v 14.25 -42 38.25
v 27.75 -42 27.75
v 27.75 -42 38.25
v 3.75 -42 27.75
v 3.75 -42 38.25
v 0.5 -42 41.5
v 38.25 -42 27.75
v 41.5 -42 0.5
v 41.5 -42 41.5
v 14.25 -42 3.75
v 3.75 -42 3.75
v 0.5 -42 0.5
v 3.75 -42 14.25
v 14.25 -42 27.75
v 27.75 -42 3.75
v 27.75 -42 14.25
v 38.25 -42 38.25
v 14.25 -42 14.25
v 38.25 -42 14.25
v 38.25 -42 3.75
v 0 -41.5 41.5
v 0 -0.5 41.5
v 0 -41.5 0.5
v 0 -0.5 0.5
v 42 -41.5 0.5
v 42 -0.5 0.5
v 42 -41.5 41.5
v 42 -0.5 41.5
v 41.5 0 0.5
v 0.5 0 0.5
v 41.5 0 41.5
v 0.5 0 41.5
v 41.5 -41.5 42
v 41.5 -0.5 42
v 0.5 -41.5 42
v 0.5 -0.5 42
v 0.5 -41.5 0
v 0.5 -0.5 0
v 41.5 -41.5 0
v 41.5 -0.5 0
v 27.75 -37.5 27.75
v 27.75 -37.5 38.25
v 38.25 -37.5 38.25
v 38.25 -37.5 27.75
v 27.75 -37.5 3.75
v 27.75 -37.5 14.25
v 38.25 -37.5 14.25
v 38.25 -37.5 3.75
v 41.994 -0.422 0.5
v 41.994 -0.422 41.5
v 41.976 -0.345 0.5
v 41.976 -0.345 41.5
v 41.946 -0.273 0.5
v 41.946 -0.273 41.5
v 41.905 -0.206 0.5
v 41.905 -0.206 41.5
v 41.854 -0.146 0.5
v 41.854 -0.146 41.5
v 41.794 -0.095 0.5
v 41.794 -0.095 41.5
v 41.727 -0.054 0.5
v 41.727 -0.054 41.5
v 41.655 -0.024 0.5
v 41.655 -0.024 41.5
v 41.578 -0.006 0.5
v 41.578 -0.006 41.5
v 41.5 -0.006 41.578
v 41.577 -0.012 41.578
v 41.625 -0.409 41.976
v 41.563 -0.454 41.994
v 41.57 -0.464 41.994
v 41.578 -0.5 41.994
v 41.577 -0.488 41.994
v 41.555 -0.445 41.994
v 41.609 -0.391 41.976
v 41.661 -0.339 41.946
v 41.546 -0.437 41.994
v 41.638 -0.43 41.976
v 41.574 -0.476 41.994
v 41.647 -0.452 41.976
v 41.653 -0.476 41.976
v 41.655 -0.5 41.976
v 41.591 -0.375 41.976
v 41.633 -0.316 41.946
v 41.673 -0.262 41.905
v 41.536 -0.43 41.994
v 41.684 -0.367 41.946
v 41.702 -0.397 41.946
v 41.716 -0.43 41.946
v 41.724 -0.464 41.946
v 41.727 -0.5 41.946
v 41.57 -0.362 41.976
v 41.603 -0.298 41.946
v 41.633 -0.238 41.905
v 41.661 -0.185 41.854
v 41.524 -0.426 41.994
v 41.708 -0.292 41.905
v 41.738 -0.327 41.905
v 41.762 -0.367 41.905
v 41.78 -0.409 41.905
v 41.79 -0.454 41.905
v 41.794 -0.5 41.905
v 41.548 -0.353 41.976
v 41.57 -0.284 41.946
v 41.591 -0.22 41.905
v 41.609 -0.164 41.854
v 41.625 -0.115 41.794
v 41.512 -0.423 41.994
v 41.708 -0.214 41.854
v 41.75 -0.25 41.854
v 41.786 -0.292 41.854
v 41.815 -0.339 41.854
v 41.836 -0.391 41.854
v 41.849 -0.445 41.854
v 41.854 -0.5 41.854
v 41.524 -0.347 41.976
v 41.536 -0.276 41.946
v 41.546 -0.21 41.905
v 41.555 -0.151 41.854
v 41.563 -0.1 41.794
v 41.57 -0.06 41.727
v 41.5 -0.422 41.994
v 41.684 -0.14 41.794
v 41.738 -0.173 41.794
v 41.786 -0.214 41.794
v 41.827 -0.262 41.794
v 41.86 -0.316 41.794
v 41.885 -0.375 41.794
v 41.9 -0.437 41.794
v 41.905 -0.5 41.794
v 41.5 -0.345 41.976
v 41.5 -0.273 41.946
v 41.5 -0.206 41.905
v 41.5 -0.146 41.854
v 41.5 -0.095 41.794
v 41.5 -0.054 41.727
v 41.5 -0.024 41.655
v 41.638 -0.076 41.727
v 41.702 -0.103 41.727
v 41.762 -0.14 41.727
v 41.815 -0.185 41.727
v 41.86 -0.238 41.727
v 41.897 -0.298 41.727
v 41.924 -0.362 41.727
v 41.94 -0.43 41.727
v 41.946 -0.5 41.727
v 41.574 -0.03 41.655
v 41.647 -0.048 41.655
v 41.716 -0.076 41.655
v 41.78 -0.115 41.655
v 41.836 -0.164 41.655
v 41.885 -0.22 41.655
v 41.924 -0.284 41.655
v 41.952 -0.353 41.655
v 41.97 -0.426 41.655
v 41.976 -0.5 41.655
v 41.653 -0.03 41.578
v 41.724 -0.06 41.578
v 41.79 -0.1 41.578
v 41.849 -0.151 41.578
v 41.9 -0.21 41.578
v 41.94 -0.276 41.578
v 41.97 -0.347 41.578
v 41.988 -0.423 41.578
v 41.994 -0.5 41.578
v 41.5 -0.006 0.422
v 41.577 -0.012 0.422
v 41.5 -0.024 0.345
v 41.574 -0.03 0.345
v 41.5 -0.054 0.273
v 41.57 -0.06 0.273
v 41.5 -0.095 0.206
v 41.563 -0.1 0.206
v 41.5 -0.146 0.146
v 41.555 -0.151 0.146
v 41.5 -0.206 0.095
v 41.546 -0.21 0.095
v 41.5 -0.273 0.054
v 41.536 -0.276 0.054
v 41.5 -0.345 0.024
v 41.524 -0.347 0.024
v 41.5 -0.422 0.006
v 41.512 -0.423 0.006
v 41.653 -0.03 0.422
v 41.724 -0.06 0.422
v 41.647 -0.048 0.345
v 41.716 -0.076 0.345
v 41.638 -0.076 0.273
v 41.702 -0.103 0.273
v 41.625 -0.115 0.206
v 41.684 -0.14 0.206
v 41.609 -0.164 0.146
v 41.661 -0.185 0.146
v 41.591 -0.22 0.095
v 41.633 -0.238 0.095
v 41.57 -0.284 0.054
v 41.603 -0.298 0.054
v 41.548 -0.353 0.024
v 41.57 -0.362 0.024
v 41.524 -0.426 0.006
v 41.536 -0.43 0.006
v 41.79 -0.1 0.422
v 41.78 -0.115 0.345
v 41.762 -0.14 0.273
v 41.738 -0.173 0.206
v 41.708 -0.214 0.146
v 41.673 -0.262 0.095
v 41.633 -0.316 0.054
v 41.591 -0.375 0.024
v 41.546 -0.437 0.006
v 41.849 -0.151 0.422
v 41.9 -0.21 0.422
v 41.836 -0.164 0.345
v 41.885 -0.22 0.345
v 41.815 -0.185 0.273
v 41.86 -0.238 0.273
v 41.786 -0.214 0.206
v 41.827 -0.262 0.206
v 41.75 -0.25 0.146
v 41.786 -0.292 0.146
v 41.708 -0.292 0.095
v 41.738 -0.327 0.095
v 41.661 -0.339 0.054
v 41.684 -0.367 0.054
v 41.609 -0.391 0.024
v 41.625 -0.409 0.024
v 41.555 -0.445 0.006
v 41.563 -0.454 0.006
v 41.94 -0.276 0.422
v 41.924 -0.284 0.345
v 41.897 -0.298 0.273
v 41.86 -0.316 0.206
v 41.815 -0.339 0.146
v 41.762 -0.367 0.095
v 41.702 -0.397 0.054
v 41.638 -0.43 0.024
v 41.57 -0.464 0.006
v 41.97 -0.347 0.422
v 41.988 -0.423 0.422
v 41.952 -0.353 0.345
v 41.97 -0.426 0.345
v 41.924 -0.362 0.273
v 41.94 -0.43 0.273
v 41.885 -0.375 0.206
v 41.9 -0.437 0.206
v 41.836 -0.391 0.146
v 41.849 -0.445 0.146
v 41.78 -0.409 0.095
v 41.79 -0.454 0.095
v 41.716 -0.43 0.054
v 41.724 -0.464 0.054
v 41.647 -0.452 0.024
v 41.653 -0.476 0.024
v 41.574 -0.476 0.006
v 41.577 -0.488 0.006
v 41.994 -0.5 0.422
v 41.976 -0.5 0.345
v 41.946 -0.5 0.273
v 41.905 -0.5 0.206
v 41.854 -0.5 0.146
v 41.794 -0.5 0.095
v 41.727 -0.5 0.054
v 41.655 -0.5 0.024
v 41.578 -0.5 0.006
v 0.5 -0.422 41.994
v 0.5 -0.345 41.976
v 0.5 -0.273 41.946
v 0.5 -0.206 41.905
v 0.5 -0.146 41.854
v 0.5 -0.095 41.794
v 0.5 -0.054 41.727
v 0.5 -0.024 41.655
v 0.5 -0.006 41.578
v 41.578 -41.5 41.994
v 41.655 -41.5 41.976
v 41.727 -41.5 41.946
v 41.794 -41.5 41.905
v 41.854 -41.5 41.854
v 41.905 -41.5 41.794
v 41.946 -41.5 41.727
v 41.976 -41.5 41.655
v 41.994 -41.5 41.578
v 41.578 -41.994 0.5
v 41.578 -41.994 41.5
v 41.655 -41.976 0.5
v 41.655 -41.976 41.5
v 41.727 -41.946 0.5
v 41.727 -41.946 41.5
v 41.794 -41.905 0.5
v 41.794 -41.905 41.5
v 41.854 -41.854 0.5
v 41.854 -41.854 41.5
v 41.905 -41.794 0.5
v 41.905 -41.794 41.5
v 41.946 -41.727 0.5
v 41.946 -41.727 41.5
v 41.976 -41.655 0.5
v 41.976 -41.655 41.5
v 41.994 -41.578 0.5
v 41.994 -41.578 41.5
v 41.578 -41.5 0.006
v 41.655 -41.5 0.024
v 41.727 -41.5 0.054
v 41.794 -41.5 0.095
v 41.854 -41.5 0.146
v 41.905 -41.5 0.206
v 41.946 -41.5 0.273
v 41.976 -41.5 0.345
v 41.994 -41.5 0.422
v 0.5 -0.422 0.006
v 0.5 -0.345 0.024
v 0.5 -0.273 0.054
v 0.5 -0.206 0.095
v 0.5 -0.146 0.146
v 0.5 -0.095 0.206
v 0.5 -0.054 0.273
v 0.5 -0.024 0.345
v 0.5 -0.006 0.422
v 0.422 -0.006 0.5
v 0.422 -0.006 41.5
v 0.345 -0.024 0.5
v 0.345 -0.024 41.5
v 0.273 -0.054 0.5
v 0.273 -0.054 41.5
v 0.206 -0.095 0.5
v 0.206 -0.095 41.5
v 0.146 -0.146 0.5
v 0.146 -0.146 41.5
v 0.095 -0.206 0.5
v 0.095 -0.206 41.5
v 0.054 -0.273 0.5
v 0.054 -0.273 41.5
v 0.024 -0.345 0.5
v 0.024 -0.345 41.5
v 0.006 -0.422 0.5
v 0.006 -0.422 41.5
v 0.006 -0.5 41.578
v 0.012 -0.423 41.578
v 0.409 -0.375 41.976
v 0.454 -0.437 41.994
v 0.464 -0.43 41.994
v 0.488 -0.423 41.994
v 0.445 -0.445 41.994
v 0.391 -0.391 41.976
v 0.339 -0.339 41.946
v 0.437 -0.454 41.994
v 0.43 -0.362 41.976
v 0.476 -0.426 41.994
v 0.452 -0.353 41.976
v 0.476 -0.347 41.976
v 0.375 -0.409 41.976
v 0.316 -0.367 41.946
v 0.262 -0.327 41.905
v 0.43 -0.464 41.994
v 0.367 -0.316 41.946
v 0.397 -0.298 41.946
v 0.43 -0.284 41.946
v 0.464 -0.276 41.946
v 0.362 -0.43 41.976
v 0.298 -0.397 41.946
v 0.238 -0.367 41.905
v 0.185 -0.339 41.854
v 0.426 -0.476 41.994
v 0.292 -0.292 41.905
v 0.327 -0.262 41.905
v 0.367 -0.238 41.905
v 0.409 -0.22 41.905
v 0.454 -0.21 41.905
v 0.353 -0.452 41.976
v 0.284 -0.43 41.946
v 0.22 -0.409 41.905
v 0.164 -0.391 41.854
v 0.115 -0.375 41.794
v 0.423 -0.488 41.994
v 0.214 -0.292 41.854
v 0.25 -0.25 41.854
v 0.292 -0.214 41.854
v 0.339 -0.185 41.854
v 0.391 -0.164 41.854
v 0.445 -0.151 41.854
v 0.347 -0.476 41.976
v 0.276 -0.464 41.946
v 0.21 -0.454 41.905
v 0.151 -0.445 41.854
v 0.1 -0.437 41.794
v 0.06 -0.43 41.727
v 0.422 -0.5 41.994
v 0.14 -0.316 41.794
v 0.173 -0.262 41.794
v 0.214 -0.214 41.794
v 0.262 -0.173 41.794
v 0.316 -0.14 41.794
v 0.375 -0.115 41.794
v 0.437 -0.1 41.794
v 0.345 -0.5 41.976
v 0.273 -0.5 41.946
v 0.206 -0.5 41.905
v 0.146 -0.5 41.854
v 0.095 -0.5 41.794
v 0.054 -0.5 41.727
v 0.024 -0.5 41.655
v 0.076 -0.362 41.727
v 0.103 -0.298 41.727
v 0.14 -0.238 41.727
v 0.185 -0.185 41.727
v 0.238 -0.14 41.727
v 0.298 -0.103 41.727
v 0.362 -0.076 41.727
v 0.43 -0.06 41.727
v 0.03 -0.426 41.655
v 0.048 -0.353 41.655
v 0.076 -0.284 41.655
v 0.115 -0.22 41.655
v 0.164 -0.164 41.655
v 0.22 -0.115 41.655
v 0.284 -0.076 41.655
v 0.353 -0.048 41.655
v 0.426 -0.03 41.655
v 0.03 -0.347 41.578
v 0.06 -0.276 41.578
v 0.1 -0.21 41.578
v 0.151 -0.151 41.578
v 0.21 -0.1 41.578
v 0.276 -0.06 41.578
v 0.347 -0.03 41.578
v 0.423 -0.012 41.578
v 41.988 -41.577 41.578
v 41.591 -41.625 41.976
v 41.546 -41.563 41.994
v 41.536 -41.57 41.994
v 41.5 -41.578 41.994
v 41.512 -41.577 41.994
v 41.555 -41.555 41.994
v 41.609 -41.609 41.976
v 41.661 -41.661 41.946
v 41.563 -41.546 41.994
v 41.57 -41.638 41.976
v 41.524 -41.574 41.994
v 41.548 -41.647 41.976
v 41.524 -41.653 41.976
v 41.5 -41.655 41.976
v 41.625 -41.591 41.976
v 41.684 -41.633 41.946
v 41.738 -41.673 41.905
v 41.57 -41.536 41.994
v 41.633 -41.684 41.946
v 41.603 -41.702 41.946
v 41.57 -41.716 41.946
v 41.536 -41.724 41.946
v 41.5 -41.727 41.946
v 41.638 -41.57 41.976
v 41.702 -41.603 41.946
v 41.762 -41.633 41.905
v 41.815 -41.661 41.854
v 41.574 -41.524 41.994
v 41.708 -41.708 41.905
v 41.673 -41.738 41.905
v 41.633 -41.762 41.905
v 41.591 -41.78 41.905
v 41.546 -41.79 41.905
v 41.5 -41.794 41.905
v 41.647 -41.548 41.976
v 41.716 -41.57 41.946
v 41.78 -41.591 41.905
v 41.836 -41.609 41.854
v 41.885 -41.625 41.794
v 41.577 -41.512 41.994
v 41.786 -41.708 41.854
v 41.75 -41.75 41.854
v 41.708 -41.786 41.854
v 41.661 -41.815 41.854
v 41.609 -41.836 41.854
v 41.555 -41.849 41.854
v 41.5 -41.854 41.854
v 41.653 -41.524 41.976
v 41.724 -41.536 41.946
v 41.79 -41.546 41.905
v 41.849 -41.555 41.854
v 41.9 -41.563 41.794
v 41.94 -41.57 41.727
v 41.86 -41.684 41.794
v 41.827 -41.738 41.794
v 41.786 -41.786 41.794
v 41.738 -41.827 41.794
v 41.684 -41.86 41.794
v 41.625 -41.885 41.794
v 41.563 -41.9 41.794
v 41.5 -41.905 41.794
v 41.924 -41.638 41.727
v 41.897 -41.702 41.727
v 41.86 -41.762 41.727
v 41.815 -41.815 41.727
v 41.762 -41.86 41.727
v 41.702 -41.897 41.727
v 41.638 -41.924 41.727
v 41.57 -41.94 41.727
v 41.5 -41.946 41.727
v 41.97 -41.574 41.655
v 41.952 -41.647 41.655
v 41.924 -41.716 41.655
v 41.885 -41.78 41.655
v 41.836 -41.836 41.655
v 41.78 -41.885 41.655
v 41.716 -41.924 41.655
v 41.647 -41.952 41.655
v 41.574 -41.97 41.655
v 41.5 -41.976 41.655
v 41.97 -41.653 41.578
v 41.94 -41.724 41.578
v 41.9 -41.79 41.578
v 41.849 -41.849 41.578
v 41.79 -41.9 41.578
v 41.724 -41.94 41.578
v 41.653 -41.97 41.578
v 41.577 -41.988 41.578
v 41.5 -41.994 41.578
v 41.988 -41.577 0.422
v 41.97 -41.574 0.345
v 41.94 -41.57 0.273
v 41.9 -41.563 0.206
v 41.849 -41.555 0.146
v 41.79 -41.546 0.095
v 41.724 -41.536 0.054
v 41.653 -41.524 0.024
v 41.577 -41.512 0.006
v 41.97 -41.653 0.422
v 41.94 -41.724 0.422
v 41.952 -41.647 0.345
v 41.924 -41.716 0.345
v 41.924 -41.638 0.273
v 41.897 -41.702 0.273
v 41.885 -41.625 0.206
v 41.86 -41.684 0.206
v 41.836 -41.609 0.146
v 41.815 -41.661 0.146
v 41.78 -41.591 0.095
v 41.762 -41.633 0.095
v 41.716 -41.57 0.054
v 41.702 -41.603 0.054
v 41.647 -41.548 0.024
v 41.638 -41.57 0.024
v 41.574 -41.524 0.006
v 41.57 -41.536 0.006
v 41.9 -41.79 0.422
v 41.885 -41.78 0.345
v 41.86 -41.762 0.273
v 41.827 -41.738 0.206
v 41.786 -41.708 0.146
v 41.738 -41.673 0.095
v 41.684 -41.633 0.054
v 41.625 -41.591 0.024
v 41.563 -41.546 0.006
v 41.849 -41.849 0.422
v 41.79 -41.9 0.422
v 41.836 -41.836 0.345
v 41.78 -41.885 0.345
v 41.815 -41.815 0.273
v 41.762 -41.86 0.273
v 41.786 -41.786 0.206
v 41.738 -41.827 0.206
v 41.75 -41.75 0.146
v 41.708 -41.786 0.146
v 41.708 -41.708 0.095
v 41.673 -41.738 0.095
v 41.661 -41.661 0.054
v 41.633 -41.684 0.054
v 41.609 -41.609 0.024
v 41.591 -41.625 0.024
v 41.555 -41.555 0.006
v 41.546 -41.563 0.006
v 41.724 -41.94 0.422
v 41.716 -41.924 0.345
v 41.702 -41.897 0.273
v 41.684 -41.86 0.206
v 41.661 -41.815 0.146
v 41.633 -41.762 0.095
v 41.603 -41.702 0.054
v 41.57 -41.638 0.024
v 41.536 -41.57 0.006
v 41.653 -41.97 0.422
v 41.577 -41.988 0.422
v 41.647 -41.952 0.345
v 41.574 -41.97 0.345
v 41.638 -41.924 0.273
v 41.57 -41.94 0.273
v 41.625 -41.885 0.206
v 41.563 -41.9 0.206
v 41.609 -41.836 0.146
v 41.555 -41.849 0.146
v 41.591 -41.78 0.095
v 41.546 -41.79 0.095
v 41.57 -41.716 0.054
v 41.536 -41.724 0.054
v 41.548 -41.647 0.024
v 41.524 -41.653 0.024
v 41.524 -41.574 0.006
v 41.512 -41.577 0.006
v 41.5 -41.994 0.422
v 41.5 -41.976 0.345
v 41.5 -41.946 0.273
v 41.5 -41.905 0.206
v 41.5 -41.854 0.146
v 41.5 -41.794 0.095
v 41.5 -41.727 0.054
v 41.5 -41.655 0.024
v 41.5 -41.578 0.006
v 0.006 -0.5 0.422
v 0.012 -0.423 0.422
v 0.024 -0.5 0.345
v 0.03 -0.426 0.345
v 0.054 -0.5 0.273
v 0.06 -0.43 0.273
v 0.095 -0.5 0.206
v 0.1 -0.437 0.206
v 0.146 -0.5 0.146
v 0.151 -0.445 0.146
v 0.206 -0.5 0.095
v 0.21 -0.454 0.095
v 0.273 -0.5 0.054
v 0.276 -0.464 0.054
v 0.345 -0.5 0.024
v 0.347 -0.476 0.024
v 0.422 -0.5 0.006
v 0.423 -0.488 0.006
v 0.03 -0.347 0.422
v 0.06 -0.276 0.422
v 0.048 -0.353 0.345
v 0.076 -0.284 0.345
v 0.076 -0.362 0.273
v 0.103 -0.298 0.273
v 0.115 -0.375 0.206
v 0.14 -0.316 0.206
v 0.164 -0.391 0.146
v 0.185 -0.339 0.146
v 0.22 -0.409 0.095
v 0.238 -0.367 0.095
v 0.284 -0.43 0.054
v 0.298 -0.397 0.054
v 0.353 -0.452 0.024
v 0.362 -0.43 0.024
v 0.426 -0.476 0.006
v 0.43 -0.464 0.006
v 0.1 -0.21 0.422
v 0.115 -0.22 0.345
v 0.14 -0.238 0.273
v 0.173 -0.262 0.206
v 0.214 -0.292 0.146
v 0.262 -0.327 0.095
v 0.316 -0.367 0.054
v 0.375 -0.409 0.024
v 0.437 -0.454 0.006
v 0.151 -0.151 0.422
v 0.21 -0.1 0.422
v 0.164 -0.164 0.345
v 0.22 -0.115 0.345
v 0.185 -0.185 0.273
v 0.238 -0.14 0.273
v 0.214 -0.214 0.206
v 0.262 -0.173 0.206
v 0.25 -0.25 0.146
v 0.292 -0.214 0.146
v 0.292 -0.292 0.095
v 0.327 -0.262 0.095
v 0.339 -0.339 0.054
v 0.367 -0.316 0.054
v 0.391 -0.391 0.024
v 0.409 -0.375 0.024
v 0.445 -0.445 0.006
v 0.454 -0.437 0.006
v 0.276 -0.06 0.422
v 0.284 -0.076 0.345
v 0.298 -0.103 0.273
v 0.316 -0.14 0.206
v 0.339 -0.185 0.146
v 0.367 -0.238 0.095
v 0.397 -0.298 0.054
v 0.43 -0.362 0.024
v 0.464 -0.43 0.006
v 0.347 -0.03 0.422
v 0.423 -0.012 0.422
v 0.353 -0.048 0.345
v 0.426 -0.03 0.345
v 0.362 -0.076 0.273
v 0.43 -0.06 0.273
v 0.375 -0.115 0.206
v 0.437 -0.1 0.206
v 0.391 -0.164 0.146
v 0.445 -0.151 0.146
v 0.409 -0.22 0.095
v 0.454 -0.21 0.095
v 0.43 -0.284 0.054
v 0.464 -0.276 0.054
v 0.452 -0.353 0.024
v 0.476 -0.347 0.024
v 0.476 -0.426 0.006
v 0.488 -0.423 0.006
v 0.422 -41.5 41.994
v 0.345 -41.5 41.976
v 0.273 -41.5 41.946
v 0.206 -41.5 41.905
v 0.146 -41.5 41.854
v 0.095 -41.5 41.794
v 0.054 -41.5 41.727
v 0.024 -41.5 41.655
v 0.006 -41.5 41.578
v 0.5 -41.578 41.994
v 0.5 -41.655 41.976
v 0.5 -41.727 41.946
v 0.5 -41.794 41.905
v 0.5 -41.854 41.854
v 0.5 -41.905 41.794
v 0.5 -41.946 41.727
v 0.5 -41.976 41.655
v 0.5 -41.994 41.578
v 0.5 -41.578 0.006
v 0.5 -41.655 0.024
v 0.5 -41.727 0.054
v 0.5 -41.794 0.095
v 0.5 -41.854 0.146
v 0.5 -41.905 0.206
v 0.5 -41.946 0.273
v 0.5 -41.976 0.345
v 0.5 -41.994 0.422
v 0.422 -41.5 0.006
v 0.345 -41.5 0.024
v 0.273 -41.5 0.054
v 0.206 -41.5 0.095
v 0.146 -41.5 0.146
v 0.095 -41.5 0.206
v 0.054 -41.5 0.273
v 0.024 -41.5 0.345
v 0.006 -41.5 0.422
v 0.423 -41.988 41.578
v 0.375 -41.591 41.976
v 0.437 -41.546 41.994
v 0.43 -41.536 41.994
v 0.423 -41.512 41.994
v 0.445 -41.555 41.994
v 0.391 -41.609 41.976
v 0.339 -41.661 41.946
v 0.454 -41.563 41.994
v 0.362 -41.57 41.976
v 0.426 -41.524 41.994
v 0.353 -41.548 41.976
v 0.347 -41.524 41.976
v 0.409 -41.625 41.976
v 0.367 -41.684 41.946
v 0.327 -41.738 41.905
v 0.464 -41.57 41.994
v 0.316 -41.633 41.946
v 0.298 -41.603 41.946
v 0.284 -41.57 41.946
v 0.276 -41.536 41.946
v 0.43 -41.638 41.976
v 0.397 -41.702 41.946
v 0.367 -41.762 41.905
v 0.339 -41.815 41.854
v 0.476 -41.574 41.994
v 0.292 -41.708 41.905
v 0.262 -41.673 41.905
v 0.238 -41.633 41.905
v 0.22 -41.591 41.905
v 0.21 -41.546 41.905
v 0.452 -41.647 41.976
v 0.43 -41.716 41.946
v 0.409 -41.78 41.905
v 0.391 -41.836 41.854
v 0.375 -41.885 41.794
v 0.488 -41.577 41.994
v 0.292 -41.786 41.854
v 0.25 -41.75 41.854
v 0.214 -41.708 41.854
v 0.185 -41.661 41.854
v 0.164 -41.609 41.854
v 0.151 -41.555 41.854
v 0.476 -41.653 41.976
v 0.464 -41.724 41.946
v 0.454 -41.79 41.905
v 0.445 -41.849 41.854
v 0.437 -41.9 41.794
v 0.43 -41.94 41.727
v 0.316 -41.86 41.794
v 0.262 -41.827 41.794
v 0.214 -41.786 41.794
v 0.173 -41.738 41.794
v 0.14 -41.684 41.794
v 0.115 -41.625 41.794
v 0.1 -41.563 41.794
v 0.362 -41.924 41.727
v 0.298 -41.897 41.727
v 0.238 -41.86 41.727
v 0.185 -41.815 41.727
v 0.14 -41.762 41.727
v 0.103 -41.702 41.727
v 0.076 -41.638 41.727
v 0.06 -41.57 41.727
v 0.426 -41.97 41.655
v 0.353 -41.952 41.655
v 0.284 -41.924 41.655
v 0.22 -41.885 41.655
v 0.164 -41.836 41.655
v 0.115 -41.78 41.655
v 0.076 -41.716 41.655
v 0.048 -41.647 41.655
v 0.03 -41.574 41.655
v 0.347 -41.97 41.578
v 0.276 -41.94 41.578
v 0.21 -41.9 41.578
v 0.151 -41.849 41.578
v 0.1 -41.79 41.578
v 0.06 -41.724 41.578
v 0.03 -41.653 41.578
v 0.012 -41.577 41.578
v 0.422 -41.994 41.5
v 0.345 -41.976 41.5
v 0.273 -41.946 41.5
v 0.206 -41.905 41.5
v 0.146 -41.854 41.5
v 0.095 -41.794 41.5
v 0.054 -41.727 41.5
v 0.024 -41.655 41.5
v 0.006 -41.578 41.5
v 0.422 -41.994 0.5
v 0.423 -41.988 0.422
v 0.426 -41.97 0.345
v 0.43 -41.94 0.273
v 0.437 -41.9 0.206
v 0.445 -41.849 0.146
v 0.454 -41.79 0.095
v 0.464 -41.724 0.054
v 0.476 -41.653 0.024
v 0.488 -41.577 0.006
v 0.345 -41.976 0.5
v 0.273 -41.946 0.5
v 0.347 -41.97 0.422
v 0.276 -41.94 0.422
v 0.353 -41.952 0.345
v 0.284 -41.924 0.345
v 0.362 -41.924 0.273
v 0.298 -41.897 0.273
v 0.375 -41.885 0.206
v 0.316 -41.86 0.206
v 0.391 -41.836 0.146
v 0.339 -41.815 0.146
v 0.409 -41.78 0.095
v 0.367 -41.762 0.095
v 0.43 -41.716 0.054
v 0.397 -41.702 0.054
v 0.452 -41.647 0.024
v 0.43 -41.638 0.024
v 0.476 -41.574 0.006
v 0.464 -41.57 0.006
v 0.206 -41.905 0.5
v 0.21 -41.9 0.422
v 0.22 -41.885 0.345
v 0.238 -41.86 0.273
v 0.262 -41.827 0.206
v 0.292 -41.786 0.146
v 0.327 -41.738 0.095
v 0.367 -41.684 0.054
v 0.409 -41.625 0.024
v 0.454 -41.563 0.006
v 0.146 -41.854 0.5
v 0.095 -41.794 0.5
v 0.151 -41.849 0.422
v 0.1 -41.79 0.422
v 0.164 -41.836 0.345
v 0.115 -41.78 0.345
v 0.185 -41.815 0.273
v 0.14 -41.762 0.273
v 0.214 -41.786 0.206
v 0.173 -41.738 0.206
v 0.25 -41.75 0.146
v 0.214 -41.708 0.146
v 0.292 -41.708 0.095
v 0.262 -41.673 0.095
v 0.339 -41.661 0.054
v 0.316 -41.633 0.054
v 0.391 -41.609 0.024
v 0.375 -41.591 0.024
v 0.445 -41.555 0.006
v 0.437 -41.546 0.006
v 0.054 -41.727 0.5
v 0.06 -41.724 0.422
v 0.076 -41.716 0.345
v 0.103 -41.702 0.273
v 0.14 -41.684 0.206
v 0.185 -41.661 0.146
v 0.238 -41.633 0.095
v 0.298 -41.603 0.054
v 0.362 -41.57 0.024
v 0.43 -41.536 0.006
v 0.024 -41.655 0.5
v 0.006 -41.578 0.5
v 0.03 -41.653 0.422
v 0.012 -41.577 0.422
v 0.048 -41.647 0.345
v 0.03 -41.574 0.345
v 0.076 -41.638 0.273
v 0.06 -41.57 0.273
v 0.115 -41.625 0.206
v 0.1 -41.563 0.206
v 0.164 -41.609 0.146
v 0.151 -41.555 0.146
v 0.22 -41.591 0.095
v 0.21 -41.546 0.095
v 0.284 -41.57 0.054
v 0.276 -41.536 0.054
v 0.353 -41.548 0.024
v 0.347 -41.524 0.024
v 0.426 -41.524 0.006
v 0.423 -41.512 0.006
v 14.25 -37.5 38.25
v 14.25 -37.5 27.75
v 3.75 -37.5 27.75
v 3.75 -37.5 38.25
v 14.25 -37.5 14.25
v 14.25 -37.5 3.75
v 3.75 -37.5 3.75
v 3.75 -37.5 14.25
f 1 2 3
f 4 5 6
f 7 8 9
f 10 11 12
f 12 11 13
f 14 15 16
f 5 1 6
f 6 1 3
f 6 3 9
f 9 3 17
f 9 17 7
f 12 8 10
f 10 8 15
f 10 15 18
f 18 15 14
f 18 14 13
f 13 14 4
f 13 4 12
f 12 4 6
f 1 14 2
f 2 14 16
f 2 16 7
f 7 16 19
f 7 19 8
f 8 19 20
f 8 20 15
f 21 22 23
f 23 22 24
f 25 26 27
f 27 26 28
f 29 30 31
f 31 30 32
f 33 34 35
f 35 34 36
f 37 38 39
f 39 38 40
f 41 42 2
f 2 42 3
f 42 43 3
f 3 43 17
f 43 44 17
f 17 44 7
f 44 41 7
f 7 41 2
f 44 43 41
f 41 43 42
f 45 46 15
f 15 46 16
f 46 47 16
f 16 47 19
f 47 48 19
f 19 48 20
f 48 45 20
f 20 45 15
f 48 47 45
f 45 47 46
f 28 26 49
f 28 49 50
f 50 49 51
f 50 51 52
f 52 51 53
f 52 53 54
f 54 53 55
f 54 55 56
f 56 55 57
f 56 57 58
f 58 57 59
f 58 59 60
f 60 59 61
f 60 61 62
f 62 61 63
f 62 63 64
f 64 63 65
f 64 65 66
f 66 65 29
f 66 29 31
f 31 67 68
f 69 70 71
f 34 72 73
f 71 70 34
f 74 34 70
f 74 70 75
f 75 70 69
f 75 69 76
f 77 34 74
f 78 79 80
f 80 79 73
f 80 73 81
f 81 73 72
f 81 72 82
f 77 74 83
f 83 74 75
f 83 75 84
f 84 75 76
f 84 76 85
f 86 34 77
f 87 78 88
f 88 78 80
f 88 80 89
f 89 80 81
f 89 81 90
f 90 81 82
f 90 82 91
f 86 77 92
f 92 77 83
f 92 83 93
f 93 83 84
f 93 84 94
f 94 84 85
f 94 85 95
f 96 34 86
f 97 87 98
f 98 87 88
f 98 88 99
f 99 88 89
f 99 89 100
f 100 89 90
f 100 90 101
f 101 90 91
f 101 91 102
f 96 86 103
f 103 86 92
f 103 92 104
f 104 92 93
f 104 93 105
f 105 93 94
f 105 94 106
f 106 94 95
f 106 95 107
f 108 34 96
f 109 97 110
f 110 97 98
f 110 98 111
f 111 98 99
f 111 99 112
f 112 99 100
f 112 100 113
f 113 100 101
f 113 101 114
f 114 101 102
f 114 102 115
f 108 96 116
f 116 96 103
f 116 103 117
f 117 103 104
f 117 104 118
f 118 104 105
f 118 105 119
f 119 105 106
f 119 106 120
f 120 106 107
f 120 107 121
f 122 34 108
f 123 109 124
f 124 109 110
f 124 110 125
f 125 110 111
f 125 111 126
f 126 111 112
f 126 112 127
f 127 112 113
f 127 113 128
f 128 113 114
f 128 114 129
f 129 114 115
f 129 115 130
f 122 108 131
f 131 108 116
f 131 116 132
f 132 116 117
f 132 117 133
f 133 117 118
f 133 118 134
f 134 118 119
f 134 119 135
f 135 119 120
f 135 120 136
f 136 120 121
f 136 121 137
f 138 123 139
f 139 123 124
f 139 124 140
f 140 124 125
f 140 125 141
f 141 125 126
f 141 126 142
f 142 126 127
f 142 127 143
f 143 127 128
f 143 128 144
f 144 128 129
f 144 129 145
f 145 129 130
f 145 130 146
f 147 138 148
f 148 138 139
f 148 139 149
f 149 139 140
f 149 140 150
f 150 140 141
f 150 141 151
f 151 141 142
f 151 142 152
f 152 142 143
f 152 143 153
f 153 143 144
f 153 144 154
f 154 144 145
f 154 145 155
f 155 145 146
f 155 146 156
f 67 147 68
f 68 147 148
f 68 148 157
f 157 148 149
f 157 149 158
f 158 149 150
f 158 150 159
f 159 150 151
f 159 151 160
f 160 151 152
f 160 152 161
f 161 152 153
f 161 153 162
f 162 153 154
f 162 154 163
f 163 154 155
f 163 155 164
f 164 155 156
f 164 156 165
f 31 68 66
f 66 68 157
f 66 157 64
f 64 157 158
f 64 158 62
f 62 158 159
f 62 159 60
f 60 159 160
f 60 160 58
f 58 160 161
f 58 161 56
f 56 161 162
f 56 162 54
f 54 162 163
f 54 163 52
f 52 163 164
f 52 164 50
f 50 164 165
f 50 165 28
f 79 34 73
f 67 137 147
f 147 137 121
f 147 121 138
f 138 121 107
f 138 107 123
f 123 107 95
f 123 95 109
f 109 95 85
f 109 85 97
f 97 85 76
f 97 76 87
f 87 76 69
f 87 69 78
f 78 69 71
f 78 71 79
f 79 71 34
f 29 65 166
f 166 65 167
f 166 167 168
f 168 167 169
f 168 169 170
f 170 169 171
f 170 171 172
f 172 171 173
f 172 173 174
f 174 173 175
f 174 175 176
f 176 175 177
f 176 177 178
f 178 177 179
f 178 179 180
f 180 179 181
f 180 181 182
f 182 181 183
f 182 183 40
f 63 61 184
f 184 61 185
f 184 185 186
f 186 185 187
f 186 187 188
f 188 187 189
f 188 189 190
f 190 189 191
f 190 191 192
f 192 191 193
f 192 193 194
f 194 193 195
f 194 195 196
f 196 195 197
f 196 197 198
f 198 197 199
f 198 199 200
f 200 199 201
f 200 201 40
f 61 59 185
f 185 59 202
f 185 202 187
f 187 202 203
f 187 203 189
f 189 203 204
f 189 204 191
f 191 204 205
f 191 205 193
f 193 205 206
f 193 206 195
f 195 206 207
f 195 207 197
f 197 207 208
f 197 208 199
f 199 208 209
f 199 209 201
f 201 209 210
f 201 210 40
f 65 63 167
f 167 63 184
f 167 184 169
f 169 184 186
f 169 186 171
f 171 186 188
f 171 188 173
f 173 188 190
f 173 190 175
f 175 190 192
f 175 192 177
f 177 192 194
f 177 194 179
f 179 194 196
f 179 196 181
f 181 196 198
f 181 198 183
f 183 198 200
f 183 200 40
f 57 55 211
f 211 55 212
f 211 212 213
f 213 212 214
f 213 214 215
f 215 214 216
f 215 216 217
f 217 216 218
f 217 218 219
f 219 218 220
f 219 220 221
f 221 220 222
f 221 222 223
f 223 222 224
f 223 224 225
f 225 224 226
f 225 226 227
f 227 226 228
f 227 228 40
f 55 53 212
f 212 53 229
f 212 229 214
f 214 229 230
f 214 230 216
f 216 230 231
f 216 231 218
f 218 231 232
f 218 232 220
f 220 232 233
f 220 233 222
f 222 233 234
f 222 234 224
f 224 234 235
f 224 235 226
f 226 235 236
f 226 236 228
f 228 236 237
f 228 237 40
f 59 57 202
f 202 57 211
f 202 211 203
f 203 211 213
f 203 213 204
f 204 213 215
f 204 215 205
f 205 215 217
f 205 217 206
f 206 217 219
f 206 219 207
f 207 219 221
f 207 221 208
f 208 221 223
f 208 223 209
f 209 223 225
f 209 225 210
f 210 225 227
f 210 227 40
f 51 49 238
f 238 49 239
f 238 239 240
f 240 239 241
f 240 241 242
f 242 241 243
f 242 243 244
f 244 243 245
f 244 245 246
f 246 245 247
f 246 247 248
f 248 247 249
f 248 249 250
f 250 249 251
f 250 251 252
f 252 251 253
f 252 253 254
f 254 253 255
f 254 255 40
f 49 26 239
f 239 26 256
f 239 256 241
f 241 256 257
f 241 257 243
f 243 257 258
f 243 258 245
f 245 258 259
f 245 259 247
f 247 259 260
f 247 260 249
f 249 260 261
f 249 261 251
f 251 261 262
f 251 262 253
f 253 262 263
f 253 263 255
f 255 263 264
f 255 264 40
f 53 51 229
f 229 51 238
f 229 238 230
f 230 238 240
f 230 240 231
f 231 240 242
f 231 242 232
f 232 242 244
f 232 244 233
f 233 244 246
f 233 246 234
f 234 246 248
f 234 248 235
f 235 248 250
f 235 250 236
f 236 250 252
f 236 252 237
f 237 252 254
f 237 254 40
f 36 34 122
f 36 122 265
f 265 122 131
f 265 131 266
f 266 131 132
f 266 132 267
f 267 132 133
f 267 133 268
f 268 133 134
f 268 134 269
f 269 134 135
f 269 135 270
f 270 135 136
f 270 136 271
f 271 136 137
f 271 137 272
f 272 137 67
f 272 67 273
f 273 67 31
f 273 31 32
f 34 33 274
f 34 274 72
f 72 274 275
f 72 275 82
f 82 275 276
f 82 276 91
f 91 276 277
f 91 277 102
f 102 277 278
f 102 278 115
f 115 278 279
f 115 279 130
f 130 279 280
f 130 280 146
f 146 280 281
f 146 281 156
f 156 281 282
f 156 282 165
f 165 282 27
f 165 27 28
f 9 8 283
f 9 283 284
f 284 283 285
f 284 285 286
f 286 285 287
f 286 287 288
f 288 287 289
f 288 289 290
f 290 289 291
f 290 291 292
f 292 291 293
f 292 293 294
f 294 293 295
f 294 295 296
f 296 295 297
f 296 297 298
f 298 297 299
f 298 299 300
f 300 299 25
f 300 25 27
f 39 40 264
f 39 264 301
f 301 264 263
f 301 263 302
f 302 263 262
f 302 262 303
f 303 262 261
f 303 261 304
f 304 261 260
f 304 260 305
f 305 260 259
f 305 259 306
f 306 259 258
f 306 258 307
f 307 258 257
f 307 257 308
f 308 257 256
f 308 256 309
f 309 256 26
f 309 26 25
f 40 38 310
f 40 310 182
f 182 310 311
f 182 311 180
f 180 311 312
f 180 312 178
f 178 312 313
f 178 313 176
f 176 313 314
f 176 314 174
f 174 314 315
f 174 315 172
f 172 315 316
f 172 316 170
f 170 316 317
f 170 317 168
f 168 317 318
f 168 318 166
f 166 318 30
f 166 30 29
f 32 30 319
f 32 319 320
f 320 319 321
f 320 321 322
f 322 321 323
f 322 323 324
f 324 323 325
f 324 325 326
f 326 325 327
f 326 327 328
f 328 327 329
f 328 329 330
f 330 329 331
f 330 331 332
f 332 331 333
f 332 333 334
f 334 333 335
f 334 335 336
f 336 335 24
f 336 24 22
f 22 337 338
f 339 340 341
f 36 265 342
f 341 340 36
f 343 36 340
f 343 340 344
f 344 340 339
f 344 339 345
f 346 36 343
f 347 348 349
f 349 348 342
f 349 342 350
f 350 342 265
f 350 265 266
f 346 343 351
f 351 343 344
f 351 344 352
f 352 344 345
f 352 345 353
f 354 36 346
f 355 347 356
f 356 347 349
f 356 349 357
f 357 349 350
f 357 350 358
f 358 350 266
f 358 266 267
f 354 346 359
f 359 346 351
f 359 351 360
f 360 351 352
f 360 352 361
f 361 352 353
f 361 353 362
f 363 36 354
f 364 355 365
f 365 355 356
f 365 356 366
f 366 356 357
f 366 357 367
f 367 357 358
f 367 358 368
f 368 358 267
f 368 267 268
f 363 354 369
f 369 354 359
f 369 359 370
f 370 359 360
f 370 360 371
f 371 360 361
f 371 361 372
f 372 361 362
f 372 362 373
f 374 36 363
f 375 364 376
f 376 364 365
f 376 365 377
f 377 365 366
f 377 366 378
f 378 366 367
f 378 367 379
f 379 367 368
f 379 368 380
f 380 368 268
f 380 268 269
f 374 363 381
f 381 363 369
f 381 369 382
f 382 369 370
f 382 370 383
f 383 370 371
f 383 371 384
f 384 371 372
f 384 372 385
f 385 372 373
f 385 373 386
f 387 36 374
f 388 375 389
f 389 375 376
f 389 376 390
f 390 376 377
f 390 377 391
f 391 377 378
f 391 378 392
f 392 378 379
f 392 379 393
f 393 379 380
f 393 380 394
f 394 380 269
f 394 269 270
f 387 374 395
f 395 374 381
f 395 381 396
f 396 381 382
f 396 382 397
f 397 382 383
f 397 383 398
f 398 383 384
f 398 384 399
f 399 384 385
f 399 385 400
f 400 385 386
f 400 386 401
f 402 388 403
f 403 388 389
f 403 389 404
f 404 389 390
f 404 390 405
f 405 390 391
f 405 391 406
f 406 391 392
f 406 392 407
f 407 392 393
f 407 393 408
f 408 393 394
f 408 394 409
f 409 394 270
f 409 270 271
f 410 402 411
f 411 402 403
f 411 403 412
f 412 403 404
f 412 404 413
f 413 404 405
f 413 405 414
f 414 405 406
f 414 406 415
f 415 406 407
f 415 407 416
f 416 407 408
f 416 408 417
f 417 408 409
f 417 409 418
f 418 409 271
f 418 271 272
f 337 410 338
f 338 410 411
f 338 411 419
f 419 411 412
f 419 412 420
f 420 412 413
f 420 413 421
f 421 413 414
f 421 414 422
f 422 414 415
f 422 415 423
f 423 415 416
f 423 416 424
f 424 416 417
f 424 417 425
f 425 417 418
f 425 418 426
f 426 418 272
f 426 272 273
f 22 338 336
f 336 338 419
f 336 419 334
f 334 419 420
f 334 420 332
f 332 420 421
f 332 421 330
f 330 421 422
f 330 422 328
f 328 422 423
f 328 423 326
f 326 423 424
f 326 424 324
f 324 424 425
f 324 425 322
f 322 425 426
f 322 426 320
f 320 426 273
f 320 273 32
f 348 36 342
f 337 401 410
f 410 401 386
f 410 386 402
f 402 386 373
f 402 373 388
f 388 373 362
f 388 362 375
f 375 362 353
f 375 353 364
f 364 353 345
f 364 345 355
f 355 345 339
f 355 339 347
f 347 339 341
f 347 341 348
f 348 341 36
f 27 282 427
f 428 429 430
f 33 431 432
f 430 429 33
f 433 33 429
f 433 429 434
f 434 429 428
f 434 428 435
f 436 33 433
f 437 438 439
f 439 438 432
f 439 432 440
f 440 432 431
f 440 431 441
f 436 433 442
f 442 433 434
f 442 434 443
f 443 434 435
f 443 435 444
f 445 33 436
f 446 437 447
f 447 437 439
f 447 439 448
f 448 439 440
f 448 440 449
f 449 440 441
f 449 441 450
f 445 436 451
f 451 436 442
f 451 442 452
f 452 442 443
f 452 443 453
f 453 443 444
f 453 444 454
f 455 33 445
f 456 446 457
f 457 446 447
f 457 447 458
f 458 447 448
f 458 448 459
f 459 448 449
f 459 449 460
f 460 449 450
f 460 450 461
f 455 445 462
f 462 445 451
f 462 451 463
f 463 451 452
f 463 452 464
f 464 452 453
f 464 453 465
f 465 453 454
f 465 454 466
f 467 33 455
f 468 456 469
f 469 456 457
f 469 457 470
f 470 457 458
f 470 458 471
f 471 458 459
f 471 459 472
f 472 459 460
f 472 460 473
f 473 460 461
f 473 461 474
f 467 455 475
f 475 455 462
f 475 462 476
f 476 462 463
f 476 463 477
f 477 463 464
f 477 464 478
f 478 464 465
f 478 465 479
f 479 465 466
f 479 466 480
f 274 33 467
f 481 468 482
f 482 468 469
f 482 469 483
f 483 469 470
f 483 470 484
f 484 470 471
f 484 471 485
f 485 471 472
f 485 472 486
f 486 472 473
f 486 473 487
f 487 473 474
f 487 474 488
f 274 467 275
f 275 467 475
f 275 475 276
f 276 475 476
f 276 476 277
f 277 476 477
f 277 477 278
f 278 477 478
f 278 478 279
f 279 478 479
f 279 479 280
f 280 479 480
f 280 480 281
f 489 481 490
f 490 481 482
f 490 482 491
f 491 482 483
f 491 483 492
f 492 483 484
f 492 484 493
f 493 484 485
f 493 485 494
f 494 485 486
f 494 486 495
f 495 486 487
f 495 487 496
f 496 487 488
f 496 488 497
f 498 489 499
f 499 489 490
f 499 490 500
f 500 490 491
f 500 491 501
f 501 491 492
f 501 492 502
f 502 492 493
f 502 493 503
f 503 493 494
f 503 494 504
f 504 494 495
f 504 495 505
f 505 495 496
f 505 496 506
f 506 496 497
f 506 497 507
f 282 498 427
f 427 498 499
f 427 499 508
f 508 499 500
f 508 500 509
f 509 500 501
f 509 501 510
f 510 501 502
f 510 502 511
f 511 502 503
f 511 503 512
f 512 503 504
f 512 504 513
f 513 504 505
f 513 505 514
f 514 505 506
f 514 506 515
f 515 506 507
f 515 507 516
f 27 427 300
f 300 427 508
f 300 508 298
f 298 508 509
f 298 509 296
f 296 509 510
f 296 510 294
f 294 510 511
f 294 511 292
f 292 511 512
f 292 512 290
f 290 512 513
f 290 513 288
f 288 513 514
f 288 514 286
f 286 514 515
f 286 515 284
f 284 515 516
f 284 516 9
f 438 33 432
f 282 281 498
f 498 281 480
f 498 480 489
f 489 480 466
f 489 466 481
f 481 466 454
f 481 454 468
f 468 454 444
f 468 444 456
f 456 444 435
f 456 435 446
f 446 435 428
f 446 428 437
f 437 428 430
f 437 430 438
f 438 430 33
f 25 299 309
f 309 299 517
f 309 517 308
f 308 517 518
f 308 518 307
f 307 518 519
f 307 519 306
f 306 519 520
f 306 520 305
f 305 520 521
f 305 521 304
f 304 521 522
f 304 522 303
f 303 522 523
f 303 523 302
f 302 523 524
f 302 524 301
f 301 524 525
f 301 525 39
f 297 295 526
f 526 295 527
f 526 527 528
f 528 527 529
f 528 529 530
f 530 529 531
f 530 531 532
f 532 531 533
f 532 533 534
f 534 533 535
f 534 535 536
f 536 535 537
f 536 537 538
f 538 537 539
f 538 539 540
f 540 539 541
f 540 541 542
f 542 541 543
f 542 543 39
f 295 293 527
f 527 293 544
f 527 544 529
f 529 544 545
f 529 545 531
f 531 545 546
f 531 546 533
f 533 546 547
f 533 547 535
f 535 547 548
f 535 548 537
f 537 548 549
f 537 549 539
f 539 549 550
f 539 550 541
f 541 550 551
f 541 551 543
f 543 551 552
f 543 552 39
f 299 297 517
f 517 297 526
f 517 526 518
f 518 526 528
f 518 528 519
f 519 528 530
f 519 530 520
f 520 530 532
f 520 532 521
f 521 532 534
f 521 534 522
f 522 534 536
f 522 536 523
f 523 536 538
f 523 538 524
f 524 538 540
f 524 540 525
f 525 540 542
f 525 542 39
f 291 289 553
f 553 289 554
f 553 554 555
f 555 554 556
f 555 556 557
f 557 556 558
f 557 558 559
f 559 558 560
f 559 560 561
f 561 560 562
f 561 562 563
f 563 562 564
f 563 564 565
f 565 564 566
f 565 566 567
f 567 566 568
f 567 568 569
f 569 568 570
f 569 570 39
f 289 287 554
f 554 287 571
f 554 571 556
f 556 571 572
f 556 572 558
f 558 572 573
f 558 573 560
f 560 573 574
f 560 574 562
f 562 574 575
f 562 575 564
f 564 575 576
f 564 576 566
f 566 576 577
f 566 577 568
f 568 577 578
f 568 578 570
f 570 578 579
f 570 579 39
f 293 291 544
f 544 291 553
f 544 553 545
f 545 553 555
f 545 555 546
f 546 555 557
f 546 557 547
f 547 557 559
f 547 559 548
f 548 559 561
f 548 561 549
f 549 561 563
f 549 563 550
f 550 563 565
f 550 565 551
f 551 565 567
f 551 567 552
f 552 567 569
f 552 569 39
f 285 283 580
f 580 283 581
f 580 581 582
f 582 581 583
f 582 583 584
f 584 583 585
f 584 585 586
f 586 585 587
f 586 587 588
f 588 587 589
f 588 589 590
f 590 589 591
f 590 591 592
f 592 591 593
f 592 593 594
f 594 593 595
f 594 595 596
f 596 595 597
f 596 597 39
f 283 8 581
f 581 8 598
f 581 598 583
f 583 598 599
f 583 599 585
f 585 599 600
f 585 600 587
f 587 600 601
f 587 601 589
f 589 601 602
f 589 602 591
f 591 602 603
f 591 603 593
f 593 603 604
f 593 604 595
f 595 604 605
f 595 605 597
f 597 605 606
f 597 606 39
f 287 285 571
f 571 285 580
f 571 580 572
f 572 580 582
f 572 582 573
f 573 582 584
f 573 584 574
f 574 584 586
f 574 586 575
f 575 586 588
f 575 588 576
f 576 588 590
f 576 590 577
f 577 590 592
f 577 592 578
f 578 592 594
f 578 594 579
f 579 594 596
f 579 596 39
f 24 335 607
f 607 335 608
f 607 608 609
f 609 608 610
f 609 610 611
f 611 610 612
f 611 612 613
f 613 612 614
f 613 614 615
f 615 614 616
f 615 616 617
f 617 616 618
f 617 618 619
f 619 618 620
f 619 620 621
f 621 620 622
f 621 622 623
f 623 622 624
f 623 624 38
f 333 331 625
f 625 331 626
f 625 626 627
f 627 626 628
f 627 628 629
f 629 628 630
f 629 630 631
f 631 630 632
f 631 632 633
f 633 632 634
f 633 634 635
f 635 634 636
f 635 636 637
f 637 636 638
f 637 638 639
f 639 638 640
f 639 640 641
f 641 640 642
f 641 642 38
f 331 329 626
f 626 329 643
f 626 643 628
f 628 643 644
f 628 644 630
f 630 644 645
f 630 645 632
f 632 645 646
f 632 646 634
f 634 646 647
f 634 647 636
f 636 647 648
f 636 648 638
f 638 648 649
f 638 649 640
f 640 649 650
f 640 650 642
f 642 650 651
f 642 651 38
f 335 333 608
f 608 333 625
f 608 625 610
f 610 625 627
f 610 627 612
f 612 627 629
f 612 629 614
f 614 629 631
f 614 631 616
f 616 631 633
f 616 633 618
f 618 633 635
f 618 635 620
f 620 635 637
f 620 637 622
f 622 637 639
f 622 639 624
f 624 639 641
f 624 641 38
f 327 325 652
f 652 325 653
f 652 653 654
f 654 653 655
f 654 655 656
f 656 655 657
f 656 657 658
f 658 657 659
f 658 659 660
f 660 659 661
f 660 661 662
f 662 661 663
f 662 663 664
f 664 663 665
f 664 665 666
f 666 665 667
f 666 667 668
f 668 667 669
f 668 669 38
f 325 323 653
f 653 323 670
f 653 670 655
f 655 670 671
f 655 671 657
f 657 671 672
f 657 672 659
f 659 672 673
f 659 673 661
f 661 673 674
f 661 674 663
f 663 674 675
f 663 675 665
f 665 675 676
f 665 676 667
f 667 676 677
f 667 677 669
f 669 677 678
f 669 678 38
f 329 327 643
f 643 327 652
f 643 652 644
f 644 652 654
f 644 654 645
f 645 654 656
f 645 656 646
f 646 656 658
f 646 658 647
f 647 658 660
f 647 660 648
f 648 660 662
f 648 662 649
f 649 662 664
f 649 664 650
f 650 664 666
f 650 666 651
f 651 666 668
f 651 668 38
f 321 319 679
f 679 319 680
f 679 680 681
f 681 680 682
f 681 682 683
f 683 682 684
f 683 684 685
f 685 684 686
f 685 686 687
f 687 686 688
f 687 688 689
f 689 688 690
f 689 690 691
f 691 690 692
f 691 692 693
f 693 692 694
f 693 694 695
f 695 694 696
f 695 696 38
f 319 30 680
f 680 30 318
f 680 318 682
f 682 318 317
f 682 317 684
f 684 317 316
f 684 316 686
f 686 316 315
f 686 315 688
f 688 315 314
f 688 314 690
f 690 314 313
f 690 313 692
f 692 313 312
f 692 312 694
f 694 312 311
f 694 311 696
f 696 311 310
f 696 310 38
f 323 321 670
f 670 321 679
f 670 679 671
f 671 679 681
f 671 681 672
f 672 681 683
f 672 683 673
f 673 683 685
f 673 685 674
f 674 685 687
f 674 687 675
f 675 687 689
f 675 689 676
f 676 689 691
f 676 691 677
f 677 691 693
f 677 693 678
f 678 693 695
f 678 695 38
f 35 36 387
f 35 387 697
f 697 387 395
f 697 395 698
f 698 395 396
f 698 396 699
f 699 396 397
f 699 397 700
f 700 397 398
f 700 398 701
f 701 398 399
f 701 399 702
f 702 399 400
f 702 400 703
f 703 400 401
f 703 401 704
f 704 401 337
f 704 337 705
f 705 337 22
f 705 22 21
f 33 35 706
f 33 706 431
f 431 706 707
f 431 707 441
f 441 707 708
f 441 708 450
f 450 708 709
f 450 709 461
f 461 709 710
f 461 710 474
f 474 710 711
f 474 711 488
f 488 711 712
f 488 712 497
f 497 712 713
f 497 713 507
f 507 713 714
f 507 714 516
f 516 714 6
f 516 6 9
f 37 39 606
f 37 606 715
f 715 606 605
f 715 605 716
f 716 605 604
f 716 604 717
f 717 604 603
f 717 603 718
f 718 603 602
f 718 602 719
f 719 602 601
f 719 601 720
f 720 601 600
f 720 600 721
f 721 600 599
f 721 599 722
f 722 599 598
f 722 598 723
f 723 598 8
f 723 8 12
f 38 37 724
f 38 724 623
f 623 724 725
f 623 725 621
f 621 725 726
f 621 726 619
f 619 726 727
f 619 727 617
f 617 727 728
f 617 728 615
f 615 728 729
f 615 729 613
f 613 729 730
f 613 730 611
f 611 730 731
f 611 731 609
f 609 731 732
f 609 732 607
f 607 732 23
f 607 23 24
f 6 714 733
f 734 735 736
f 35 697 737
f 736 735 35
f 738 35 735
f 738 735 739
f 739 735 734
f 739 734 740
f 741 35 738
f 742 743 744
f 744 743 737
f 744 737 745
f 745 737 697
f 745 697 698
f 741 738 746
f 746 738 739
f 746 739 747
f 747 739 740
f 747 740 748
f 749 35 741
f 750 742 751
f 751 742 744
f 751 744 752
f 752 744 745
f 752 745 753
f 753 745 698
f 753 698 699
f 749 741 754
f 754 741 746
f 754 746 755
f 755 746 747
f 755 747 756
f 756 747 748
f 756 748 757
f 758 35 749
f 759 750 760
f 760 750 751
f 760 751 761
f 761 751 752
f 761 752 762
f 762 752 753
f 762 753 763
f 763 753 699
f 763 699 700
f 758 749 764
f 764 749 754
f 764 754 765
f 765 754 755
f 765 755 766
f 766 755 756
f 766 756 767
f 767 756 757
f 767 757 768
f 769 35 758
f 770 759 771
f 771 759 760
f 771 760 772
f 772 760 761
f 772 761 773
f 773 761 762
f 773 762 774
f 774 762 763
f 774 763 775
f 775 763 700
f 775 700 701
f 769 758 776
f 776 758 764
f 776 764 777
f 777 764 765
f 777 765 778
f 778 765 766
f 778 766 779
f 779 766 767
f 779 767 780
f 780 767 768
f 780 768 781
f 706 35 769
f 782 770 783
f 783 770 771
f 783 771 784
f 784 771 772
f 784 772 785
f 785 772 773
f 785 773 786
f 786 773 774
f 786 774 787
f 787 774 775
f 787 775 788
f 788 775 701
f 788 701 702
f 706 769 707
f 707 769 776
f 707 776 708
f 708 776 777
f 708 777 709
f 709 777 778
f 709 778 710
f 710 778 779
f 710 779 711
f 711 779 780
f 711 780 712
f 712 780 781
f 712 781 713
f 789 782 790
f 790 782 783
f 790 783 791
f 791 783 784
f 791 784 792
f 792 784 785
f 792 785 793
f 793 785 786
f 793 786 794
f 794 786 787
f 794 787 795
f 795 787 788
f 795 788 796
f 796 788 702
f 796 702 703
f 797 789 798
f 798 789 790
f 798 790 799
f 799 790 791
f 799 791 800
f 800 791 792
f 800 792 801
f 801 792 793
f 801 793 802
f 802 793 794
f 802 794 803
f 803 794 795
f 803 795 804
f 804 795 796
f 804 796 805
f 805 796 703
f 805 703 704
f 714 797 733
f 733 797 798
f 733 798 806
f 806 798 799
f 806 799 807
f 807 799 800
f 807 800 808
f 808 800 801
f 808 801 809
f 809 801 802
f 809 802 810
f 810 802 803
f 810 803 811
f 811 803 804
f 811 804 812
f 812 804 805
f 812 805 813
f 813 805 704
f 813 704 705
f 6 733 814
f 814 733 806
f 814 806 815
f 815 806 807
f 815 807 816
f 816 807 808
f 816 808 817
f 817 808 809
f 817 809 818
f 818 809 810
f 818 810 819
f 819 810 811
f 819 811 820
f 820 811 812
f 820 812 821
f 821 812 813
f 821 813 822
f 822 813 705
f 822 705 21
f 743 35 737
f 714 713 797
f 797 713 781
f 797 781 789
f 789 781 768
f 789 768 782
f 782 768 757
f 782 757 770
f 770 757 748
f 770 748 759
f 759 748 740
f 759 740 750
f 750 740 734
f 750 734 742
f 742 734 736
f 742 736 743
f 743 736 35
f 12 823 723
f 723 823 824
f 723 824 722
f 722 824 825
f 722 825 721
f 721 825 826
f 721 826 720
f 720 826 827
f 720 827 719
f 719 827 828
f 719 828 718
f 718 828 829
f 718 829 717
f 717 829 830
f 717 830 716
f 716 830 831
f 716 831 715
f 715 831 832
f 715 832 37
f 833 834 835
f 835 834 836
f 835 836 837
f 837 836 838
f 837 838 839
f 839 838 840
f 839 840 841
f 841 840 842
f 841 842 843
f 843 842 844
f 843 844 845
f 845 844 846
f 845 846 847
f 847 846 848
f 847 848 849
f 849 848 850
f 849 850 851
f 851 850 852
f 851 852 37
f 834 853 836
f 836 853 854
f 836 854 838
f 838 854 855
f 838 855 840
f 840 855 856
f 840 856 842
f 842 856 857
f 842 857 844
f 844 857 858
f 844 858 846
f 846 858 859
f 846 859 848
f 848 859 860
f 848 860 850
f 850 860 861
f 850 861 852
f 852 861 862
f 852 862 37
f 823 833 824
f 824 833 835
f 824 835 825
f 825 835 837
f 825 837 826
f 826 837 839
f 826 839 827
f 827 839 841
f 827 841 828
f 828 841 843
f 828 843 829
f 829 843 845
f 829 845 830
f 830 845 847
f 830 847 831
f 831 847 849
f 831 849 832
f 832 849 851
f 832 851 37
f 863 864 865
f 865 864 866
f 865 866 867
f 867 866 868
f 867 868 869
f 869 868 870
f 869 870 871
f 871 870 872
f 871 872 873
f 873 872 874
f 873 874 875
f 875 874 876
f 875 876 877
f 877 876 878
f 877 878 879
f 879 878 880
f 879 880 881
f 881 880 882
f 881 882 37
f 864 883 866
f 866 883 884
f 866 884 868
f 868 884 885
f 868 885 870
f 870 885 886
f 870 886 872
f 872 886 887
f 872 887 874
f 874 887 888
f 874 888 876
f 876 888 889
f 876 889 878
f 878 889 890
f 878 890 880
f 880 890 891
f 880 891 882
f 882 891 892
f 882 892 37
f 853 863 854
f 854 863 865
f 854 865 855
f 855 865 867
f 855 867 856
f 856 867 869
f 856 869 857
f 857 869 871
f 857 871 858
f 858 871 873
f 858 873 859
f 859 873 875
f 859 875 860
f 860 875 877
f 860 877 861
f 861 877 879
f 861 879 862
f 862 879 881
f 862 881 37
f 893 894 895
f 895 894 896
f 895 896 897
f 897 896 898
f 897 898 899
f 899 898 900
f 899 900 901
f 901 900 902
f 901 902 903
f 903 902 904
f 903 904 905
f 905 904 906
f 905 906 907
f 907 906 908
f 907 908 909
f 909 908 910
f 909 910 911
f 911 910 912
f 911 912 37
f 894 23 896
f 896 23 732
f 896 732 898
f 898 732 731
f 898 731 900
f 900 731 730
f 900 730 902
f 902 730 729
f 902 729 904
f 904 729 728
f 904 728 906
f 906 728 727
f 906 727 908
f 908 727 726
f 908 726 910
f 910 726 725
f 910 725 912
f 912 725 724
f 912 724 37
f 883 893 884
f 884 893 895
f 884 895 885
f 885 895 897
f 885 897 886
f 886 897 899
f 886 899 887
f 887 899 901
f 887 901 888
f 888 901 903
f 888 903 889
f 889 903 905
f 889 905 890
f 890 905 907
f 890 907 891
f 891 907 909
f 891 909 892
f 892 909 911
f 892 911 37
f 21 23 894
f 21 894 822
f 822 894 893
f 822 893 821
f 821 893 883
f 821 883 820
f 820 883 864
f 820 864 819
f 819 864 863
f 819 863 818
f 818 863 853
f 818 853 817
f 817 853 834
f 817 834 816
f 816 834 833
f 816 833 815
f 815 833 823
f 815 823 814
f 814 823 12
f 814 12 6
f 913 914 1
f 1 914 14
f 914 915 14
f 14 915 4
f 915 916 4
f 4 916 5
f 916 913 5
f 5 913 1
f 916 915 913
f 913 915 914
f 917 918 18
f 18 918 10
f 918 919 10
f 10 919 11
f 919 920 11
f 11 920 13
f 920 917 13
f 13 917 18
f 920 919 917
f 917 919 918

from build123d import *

# Parameters (mm, degrees)
ESQUISSE1_W             = 42
ESQUISSE1_H             = 42
BOSS_EXTRU_1_DEPTH      = 42
ESQUISSE2_W             = 10.5
ESQUISSE2_H             = 10.5
ENL_V_MAT_EXTRU_1_DEPTH = 4.5
CONG_1_R                = 0.5


with BuildPart() as part:
    # Esquisse1 → Boss.-Extru.1 (new body)
    with BuildSketch(Plane.XY):
        with Locations((21, -21)):
            Rectangle(ESQUISSE1_W, ESQUISSE1_H)
    extrude(amount=BOSS_EXTRU_1_DEPTH)

    # Esquisse2 → Enlèv. mat.-Extru.1 (cut)
    with BuildSketch(Plane.XZ.offset(42)):
        with Locations((33, 33)):
            Rectangle(ESQUISSE2_W, ESQUISSE2_H)
        with Locations((33, 9)):
            Rectangle(ESQUISSE2_W, ESQUISSE2_H)
    enl_v_mat_extru_1 = extrude(amount=-ENL_V_MAT_EXTRU_1_DEPTH, mode=Mode.SUBTRACT)

    # Congé1
    cong_1_edges = [part.edges().sort_by_distance(p)[0] for p in [
        (42, -21, 42),
        (21, 0, 42),
        (0, -21, 42),
        (21, 0, 0),
        (42, -21, 0),
        (21, -42, 0),
        (0, -21, 0),
        (21, -42, 42),
        (0, 0, 21),
        (42, 0, 21),
        (42, -42, 21),
        (0, -42, 21),
    ]]
    fillet(cong_1_edges, radius=CONG_1_R)

    # Symétrie1: Enlèv. mat.-Extru.1 across plane
    add(enl_v_mat_extru_1.mirror(Plane(origin=(21, 0, 0), x_dir=(0, 0, 1), z_dir=(1, 0, 0))), mode=Mode.SUBTRACT)


solid = part.part
